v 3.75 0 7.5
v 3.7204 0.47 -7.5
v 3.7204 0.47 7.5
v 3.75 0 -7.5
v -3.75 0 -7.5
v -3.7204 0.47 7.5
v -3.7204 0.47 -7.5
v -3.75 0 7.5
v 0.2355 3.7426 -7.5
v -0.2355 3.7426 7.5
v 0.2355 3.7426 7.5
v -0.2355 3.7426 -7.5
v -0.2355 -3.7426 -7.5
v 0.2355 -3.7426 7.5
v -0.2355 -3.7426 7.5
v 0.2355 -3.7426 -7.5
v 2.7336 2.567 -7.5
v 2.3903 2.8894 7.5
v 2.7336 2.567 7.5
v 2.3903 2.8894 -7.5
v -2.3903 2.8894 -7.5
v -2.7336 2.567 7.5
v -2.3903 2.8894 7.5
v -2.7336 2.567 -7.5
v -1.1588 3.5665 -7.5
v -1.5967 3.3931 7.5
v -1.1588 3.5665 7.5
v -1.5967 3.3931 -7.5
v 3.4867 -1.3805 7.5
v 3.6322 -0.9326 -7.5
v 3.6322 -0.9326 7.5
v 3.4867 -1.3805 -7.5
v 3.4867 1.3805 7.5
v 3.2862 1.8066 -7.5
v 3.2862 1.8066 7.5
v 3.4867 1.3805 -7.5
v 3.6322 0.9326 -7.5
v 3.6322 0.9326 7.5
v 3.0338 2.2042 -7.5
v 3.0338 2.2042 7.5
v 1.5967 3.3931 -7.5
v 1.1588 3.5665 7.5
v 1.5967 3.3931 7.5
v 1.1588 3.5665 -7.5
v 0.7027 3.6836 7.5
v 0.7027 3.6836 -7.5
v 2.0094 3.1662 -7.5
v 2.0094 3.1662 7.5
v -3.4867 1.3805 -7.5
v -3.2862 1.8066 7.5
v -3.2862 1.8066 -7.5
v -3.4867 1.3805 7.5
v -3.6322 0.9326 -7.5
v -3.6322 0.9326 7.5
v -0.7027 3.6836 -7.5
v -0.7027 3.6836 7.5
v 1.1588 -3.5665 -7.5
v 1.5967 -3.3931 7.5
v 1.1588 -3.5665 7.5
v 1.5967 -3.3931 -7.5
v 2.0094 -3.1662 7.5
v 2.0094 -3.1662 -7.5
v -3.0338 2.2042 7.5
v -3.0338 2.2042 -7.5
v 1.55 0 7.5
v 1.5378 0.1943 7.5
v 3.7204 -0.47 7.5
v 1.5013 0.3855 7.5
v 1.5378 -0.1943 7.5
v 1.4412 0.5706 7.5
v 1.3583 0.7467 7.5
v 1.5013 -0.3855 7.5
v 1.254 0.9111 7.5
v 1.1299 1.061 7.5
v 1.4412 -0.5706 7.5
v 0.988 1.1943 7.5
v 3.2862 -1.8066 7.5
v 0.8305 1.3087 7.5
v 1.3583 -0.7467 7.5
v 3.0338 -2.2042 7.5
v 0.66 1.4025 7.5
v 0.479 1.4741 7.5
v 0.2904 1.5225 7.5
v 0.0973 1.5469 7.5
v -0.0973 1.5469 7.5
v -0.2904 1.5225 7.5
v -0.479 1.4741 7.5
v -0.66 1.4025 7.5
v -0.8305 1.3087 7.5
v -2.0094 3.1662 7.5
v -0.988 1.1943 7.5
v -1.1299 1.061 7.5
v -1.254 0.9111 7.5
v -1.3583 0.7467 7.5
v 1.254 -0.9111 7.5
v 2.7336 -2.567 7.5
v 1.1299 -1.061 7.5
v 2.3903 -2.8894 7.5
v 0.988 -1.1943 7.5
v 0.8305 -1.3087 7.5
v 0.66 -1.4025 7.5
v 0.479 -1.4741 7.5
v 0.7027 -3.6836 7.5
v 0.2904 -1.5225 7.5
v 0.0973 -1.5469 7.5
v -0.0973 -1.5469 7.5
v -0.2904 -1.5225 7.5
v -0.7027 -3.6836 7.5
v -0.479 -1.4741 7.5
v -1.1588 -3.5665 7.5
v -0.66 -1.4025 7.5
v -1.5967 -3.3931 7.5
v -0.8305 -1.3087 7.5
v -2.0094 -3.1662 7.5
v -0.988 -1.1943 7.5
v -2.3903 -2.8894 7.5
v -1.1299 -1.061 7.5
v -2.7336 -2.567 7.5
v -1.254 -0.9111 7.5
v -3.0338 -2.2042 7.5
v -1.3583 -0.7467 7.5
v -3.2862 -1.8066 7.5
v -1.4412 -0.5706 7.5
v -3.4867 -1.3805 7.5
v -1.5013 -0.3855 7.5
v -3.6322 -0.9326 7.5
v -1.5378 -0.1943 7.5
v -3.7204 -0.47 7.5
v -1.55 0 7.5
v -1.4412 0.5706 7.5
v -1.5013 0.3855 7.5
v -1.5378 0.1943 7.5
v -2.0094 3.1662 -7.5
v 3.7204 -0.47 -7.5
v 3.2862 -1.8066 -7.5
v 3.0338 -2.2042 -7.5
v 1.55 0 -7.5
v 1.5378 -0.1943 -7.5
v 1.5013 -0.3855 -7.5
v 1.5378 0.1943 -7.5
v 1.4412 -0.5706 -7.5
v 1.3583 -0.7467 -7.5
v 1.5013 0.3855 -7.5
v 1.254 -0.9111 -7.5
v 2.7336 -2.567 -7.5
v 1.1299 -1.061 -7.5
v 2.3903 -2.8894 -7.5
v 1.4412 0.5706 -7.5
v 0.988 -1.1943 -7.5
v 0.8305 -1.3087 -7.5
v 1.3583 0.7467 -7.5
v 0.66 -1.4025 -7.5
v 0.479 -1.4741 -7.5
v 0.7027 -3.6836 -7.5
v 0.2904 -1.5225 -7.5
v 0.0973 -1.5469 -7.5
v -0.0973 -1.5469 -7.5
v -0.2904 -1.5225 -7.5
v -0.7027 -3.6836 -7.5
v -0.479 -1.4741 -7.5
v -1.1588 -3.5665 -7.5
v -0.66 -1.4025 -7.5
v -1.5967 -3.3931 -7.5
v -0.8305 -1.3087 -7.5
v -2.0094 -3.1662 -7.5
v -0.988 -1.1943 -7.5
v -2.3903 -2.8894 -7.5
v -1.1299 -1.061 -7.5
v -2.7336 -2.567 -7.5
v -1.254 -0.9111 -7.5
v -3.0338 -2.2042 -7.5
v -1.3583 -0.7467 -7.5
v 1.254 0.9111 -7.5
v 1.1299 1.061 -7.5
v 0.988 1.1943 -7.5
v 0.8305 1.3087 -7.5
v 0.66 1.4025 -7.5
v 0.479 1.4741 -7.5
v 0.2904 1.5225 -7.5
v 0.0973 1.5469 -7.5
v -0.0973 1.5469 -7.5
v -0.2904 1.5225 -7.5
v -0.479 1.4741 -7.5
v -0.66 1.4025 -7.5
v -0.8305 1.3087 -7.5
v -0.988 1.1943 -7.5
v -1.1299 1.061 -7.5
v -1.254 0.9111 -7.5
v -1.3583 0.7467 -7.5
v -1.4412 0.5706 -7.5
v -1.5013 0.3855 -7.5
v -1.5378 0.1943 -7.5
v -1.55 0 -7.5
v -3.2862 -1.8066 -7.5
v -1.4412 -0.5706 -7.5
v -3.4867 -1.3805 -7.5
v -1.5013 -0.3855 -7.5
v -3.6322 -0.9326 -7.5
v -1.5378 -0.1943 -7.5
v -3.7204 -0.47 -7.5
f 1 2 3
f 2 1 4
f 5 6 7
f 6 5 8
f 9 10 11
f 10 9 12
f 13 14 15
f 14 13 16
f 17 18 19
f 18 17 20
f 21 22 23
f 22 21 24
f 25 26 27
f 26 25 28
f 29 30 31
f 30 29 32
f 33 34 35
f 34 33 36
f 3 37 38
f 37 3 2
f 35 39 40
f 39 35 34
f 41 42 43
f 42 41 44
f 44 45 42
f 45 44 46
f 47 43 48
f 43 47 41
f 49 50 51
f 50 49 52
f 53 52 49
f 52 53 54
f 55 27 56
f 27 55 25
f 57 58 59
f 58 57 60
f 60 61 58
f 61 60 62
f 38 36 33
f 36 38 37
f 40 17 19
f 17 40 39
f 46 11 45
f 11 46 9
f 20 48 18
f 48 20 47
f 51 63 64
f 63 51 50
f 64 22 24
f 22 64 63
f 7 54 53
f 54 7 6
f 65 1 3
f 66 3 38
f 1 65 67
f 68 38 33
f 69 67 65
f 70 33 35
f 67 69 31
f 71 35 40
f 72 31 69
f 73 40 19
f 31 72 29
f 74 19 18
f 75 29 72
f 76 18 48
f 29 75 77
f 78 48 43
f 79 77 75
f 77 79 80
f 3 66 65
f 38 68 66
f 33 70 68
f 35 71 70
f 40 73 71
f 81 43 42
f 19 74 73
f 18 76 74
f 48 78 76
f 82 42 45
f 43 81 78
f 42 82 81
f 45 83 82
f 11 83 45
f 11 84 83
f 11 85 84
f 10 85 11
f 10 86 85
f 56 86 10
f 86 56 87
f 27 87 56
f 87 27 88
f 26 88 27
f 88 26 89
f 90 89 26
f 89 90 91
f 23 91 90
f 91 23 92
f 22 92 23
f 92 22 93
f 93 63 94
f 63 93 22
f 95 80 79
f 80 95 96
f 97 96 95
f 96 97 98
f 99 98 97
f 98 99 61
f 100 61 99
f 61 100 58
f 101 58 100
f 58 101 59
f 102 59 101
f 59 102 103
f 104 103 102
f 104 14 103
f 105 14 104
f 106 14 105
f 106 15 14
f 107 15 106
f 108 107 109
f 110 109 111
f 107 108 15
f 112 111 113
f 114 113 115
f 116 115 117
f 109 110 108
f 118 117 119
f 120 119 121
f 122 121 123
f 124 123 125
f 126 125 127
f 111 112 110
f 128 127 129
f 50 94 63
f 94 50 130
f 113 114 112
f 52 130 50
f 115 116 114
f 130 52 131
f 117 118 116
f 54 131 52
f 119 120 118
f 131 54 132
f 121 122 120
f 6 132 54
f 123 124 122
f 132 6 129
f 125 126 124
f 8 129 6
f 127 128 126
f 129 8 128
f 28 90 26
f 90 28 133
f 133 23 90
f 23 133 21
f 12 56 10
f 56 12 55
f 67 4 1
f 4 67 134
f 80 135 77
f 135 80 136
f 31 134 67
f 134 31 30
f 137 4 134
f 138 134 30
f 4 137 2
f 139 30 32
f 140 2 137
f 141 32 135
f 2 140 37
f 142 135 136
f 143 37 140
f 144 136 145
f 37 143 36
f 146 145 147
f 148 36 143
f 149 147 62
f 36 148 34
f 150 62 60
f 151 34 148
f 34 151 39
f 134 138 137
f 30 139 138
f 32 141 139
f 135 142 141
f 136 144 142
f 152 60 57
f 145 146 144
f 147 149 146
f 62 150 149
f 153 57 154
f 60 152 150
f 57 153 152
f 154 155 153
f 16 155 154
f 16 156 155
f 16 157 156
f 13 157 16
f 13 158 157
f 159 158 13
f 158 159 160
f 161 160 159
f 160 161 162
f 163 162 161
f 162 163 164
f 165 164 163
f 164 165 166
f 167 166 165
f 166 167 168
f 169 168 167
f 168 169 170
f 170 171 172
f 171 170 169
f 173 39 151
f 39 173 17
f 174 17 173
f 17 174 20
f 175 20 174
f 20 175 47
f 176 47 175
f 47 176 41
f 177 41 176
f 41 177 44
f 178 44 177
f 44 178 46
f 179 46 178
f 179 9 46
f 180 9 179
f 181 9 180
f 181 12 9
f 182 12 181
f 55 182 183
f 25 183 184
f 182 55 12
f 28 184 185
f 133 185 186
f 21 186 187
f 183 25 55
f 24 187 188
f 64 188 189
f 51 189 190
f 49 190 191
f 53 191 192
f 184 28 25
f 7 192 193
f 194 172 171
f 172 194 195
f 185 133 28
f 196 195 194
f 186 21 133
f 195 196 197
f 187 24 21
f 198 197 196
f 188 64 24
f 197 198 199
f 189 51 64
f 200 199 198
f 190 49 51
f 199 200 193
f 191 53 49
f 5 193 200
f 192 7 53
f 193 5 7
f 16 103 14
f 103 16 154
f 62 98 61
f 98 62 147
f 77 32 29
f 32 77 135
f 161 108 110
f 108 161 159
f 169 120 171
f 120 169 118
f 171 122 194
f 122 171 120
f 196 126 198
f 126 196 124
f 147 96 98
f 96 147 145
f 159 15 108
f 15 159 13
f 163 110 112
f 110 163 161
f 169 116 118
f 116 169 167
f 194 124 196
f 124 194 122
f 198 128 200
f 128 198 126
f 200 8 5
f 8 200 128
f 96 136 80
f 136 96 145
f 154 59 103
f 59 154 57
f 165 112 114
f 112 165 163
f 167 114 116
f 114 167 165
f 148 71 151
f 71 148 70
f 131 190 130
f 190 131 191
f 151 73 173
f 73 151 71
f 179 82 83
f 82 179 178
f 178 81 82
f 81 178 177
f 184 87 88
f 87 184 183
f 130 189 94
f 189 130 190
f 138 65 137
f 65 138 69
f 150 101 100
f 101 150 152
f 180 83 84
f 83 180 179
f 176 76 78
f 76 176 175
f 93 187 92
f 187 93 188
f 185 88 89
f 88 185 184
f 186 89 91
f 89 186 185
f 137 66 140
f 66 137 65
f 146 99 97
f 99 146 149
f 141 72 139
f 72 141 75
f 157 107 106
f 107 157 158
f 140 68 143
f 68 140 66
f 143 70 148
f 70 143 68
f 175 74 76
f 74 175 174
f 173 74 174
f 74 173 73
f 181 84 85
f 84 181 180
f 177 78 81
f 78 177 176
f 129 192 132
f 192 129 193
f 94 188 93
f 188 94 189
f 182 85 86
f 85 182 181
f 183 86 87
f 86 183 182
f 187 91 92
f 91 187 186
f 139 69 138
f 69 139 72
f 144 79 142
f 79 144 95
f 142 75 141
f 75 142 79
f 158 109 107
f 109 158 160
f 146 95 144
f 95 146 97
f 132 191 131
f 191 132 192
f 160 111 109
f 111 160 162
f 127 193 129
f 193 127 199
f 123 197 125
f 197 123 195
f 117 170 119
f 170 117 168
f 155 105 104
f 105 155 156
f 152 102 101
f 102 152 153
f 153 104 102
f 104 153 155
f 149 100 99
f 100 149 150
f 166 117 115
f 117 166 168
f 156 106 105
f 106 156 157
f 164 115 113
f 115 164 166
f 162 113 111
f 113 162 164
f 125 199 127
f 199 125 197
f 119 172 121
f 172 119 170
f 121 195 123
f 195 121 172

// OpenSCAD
$fn = 50;


difference() {
	union() {
		translate(v = [0, 0, -7.5000000000]) {
			cylinder(h = 15, r = 3.7500000000);
		}
	}
	union() {
		translate(v = [0, 0, -100.0000000000]) {
			cylinder(h = 200, r = 1.5500000000);
		}
	}
}
